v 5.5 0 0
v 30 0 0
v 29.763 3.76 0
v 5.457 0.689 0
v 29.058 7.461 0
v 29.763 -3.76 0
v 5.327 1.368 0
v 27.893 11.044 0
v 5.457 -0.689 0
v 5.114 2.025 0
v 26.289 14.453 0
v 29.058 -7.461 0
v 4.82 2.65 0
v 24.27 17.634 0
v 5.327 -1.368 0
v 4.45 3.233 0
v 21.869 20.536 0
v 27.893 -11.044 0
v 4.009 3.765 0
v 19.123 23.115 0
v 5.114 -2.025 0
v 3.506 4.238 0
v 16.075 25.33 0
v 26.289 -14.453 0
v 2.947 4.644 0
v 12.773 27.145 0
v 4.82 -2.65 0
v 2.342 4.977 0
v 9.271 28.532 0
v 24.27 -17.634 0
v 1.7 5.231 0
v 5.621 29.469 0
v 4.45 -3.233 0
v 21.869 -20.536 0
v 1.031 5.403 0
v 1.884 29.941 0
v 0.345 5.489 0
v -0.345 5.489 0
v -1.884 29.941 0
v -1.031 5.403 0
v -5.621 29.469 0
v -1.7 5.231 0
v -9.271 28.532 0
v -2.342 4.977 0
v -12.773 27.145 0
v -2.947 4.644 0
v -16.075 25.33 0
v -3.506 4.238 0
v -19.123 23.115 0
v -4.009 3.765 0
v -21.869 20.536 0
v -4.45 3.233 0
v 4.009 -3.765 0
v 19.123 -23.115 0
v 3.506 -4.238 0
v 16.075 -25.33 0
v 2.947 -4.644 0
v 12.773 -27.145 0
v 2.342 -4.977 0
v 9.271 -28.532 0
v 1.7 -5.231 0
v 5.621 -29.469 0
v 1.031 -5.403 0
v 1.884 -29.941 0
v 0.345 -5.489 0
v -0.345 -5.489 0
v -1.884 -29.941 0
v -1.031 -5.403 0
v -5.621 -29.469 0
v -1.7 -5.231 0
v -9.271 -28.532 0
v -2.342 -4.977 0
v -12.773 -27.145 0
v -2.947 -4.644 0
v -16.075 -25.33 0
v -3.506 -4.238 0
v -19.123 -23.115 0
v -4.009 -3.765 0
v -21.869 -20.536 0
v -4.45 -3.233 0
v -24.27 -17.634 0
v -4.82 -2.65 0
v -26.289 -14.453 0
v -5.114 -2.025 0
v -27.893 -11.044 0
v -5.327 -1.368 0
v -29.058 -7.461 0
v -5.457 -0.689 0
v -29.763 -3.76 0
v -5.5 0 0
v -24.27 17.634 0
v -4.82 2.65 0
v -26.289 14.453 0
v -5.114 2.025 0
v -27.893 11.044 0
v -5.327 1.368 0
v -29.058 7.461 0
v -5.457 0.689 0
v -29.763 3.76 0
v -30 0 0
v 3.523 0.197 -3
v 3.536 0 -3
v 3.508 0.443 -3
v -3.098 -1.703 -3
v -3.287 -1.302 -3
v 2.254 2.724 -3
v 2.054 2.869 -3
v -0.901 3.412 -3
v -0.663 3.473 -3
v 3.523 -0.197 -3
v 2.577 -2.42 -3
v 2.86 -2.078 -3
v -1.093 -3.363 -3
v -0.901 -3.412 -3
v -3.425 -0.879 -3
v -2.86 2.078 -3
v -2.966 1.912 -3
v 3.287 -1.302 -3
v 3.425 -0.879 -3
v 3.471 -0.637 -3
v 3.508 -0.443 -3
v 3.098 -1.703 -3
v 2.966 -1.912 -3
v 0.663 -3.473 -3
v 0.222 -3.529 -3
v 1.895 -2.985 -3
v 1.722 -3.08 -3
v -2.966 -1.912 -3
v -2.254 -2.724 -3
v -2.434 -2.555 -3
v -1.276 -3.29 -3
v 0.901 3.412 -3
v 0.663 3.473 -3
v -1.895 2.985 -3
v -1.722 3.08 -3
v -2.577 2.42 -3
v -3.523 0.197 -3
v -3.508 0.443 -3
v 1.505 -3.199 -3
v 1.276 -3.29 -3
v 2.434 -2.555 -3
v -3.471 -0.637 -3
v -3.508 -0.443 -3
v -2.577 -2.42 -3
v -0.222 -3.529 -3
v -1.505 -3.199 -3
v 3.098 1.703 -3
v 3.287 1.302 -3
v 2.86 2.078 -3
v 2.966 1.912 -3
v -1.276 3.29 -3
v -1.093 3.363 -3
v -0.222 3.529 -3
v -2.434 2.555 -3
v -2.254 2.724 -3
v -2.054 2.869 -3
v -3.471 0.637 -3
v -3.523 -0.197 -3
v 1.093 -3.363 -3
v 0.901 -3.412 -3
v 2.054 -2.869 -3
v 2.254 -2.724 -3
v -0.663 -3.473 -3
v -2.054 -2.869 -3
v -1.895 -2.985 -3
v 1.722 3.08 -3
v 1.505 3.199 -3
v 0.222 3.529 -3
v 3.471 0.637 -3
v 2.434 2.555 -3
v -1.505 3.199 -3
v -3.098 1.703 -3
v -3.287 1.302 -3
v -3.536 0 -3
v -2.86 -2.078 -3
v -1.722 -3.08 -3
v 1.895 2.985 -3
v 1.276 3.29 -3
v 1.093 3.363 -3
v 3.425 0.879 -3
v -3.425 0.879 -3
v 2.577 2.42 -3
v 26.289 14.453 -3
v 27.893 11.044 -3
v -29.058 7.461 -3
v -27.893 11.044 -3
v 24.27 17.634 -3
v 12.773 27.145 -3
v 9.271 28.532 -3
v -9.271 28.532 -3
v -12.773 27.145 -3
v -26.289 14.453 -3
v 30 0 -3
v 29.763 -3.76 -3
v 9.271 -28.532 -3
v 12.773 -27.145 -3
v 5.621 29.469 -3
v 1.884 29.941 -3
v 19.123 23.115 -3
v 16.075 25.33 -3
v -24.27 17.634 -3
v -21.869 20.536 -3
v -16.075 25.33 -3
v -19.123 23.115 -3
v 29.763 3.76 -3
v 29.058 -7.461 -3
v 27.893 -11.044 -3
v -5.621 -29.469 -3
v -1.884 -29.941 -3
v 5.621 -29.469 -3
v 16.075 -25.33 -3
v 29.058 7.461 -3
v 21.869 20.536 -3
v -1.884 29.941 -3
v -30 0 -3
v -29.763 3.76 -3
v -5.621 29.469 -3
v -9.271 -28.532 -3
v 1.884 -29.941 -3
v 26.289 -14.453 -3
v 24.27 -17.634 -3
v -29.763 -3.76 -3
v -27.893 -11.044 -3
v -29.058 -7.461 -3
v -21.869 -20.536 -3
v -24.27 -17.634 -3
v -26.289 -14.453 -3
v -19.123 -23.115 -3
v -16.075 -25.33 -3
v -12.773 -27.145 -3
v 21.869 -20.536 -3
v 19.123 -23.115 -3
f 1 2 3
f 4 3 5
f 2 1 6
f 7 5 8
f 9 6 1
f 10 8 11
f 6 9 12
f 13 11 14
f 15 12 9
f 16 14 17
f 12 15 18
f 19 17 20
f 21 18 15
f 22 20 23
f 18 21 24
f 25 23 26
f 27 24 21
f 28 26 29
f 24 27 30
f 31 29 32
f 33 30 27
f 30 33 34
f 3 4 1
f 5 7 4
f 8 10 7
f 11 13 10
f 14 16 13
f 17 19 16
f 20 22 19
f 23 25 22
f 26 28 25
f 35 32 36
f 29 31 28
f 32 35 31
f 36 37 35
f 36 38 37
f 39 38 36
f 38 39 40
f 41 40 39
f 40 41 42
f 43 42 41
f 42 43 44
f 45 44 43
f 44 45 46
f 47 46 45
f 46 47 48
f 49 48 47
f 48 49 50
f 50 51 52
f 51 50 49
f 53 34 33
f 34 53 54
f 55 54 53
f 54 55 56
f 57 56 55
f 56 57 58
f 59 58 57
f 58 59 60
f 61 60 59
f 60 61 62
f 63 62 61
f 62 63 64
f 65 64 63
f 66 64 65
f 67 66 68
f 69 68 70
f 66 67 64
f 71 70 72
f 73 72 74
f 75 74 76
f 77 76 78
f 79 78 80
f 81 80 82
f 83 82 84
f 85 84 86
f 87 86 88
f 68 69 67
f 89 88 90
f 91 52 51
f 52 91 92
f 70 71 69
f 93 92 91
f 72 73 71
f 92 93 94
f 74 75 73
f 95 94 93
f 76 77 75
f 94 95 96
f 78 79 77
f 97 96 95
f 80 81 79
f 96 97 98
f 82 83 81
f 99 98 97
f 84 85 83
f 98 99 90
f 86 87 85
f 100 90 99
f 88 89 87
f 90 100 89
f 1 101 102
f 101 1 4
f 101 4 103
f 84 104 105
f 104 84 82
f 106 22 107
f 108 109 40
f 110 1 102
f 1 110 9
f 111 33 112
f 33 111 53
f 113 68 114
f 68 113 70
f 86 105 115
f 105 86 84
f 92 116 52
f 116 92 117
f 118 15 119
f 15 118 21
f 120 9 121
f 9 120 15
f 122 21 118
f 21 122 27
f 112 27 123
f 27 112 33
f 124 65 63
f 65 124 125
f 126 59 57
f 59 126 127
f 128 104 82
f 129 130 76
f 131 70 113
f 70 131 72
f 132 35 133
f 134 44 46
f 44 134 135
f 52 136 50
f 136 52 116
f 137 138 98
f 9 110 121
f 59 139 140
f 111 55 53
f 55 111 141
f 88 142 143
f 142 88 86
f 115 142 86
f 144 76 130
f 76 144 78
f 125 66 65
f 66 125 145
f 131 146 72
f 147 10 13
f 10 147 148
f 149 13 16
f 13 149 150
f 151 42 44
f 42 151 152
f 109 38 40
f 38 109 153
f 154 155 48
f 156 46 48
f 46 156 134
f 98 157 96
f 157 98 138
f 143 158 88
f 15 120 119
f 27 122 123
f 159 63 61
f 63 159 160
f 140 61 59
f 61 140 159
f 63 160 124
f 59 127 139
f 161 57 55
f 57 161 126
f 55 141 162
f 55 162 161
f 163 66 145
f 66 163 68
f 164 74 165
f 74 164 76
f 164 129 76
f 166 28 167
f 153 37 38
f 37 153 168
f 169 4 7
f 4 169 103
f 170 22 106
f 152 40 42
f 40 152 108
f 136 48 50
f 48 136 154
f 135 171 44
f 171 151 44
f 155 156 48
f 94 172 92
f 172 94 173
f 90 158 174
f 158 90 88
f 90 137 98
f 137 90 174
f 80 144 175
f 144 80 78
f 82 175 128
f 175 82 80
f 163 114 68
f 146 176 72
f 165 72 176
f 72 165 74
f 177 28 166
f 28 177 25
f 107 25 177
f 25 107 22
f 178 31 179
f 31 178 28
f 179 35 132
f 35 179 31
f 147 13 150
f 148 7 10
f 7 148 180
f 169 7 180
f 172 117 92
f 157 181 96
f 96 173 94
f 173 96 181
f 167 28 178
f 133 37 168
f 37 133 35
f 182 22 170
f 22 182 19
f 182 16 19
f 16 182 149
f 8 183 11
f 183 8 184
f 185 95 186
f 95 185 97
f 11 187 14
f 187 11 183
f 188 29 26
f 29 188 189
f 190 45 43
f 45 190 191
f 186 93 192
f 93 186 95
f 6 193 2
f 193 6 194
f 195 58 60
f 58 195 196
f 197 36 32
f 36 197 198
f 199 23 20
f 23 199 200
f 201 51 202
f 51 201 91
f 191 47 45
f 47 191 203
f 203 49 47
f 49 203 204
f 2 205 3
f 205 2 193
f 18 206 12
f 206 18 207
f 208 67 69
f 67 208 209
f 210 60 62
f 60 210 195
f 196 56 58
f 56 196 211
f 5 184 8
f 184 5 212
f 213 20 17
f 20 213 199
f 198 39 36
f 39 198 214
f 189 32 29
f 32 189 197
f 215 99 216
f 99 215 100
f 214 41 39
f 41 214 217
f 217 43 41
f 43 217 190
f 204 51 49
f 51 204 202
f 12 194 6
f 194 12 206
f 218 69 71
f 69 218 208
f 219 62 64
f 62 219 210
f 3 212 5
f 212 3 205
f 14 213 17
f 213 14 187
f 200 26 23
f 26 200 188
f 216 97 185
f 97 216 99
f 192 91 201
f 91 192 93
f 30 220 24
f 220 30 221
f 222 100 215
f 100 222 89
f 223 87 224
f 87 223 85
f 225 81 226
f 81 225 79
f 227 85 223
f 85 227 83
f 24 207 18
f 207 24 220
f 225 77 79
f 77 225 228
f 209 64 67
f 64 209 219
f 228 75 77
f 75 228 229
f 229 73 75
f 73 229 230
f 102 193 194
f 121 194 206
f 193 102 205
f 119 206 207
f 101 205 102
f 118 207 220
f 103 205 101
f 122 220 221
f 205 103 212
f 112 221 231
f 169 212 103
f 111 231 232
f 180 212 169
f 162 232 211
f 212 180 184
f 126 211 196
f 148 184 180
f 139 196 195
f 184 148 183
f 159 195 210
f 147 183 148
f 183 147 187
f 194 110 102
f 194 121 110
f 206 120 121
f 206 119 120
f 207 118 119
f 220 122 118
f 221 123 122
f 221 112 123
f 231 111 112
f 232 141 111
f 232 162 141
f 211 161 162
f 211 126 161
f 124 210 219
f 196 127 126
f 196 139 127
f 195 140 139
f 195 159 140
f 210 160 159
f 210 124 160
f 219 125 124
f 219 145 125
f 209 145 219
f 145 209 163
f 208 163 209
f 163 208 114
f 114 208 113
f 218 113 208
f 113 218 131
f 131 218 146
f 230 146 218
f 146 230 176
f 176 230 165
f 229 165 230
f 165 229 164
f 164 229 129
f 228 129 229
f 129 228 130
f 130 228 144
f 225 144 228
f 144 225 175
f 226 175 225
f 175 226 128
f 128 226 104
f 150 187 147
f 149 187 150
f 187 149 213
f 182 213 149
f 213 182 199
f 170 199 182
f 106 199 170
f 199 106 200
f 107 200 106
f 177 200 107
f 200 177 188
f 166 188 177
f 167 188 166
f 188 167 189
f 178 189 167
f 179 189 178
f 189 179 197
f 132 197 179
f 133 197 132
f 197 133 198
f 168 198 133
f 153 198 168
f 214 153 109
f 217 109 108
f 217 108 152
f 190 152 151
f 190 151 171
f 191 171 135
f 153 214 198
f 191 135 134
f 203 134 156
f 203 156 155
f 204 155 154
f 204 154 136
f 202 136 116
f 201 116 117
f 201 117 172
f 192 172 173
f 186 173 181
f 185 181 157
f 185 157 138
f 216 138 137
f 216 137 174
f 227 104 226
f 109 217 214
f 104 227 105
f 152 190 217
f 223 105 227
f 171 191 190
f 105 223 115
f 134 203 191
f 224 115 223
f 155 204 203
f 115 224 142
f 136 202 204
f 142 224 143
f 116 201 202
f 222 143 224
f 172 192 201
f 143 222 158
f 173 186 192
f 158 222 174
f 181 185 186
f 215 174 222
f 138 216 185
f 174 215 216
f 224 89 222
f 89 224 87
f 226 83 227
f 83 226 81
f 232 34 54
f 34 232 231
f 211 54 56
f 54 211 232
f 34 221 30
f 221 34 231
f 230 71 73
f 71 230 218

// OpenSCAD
$fn = 50;


difference() {
	union() {
		translate(v = [0, 0, -3.0000000000]) {
			cylinder(h = 3, r = 30.0000000000);
		}
	}
	union() {
		translate(v = [0, 0, 0]) {
			rotate(a = [0, 0, 0]) {
				difference() {
					union() {
						translate(v = [0, 0, -6.0000000000]) {
							cylinder(h = 6, r = 2.2500000000);
						}
						translate(v = [0, 0, -4.2000000000]) {
							cylinder(h = 4.2000000000, r1 = 2.7500000000, r2 = 5.5000000000);
						}
						translate(v = [0, 0, -6.0000000000]) {
							cylinder(h = 6, r = 2.7500000000);
						}
						translate(v = [0, 0, -6.0000000000]) {
							cylinder(h = 6, r = 2.2500000000);
						}
					}
					union();
				}
			}
		}
	}
}
